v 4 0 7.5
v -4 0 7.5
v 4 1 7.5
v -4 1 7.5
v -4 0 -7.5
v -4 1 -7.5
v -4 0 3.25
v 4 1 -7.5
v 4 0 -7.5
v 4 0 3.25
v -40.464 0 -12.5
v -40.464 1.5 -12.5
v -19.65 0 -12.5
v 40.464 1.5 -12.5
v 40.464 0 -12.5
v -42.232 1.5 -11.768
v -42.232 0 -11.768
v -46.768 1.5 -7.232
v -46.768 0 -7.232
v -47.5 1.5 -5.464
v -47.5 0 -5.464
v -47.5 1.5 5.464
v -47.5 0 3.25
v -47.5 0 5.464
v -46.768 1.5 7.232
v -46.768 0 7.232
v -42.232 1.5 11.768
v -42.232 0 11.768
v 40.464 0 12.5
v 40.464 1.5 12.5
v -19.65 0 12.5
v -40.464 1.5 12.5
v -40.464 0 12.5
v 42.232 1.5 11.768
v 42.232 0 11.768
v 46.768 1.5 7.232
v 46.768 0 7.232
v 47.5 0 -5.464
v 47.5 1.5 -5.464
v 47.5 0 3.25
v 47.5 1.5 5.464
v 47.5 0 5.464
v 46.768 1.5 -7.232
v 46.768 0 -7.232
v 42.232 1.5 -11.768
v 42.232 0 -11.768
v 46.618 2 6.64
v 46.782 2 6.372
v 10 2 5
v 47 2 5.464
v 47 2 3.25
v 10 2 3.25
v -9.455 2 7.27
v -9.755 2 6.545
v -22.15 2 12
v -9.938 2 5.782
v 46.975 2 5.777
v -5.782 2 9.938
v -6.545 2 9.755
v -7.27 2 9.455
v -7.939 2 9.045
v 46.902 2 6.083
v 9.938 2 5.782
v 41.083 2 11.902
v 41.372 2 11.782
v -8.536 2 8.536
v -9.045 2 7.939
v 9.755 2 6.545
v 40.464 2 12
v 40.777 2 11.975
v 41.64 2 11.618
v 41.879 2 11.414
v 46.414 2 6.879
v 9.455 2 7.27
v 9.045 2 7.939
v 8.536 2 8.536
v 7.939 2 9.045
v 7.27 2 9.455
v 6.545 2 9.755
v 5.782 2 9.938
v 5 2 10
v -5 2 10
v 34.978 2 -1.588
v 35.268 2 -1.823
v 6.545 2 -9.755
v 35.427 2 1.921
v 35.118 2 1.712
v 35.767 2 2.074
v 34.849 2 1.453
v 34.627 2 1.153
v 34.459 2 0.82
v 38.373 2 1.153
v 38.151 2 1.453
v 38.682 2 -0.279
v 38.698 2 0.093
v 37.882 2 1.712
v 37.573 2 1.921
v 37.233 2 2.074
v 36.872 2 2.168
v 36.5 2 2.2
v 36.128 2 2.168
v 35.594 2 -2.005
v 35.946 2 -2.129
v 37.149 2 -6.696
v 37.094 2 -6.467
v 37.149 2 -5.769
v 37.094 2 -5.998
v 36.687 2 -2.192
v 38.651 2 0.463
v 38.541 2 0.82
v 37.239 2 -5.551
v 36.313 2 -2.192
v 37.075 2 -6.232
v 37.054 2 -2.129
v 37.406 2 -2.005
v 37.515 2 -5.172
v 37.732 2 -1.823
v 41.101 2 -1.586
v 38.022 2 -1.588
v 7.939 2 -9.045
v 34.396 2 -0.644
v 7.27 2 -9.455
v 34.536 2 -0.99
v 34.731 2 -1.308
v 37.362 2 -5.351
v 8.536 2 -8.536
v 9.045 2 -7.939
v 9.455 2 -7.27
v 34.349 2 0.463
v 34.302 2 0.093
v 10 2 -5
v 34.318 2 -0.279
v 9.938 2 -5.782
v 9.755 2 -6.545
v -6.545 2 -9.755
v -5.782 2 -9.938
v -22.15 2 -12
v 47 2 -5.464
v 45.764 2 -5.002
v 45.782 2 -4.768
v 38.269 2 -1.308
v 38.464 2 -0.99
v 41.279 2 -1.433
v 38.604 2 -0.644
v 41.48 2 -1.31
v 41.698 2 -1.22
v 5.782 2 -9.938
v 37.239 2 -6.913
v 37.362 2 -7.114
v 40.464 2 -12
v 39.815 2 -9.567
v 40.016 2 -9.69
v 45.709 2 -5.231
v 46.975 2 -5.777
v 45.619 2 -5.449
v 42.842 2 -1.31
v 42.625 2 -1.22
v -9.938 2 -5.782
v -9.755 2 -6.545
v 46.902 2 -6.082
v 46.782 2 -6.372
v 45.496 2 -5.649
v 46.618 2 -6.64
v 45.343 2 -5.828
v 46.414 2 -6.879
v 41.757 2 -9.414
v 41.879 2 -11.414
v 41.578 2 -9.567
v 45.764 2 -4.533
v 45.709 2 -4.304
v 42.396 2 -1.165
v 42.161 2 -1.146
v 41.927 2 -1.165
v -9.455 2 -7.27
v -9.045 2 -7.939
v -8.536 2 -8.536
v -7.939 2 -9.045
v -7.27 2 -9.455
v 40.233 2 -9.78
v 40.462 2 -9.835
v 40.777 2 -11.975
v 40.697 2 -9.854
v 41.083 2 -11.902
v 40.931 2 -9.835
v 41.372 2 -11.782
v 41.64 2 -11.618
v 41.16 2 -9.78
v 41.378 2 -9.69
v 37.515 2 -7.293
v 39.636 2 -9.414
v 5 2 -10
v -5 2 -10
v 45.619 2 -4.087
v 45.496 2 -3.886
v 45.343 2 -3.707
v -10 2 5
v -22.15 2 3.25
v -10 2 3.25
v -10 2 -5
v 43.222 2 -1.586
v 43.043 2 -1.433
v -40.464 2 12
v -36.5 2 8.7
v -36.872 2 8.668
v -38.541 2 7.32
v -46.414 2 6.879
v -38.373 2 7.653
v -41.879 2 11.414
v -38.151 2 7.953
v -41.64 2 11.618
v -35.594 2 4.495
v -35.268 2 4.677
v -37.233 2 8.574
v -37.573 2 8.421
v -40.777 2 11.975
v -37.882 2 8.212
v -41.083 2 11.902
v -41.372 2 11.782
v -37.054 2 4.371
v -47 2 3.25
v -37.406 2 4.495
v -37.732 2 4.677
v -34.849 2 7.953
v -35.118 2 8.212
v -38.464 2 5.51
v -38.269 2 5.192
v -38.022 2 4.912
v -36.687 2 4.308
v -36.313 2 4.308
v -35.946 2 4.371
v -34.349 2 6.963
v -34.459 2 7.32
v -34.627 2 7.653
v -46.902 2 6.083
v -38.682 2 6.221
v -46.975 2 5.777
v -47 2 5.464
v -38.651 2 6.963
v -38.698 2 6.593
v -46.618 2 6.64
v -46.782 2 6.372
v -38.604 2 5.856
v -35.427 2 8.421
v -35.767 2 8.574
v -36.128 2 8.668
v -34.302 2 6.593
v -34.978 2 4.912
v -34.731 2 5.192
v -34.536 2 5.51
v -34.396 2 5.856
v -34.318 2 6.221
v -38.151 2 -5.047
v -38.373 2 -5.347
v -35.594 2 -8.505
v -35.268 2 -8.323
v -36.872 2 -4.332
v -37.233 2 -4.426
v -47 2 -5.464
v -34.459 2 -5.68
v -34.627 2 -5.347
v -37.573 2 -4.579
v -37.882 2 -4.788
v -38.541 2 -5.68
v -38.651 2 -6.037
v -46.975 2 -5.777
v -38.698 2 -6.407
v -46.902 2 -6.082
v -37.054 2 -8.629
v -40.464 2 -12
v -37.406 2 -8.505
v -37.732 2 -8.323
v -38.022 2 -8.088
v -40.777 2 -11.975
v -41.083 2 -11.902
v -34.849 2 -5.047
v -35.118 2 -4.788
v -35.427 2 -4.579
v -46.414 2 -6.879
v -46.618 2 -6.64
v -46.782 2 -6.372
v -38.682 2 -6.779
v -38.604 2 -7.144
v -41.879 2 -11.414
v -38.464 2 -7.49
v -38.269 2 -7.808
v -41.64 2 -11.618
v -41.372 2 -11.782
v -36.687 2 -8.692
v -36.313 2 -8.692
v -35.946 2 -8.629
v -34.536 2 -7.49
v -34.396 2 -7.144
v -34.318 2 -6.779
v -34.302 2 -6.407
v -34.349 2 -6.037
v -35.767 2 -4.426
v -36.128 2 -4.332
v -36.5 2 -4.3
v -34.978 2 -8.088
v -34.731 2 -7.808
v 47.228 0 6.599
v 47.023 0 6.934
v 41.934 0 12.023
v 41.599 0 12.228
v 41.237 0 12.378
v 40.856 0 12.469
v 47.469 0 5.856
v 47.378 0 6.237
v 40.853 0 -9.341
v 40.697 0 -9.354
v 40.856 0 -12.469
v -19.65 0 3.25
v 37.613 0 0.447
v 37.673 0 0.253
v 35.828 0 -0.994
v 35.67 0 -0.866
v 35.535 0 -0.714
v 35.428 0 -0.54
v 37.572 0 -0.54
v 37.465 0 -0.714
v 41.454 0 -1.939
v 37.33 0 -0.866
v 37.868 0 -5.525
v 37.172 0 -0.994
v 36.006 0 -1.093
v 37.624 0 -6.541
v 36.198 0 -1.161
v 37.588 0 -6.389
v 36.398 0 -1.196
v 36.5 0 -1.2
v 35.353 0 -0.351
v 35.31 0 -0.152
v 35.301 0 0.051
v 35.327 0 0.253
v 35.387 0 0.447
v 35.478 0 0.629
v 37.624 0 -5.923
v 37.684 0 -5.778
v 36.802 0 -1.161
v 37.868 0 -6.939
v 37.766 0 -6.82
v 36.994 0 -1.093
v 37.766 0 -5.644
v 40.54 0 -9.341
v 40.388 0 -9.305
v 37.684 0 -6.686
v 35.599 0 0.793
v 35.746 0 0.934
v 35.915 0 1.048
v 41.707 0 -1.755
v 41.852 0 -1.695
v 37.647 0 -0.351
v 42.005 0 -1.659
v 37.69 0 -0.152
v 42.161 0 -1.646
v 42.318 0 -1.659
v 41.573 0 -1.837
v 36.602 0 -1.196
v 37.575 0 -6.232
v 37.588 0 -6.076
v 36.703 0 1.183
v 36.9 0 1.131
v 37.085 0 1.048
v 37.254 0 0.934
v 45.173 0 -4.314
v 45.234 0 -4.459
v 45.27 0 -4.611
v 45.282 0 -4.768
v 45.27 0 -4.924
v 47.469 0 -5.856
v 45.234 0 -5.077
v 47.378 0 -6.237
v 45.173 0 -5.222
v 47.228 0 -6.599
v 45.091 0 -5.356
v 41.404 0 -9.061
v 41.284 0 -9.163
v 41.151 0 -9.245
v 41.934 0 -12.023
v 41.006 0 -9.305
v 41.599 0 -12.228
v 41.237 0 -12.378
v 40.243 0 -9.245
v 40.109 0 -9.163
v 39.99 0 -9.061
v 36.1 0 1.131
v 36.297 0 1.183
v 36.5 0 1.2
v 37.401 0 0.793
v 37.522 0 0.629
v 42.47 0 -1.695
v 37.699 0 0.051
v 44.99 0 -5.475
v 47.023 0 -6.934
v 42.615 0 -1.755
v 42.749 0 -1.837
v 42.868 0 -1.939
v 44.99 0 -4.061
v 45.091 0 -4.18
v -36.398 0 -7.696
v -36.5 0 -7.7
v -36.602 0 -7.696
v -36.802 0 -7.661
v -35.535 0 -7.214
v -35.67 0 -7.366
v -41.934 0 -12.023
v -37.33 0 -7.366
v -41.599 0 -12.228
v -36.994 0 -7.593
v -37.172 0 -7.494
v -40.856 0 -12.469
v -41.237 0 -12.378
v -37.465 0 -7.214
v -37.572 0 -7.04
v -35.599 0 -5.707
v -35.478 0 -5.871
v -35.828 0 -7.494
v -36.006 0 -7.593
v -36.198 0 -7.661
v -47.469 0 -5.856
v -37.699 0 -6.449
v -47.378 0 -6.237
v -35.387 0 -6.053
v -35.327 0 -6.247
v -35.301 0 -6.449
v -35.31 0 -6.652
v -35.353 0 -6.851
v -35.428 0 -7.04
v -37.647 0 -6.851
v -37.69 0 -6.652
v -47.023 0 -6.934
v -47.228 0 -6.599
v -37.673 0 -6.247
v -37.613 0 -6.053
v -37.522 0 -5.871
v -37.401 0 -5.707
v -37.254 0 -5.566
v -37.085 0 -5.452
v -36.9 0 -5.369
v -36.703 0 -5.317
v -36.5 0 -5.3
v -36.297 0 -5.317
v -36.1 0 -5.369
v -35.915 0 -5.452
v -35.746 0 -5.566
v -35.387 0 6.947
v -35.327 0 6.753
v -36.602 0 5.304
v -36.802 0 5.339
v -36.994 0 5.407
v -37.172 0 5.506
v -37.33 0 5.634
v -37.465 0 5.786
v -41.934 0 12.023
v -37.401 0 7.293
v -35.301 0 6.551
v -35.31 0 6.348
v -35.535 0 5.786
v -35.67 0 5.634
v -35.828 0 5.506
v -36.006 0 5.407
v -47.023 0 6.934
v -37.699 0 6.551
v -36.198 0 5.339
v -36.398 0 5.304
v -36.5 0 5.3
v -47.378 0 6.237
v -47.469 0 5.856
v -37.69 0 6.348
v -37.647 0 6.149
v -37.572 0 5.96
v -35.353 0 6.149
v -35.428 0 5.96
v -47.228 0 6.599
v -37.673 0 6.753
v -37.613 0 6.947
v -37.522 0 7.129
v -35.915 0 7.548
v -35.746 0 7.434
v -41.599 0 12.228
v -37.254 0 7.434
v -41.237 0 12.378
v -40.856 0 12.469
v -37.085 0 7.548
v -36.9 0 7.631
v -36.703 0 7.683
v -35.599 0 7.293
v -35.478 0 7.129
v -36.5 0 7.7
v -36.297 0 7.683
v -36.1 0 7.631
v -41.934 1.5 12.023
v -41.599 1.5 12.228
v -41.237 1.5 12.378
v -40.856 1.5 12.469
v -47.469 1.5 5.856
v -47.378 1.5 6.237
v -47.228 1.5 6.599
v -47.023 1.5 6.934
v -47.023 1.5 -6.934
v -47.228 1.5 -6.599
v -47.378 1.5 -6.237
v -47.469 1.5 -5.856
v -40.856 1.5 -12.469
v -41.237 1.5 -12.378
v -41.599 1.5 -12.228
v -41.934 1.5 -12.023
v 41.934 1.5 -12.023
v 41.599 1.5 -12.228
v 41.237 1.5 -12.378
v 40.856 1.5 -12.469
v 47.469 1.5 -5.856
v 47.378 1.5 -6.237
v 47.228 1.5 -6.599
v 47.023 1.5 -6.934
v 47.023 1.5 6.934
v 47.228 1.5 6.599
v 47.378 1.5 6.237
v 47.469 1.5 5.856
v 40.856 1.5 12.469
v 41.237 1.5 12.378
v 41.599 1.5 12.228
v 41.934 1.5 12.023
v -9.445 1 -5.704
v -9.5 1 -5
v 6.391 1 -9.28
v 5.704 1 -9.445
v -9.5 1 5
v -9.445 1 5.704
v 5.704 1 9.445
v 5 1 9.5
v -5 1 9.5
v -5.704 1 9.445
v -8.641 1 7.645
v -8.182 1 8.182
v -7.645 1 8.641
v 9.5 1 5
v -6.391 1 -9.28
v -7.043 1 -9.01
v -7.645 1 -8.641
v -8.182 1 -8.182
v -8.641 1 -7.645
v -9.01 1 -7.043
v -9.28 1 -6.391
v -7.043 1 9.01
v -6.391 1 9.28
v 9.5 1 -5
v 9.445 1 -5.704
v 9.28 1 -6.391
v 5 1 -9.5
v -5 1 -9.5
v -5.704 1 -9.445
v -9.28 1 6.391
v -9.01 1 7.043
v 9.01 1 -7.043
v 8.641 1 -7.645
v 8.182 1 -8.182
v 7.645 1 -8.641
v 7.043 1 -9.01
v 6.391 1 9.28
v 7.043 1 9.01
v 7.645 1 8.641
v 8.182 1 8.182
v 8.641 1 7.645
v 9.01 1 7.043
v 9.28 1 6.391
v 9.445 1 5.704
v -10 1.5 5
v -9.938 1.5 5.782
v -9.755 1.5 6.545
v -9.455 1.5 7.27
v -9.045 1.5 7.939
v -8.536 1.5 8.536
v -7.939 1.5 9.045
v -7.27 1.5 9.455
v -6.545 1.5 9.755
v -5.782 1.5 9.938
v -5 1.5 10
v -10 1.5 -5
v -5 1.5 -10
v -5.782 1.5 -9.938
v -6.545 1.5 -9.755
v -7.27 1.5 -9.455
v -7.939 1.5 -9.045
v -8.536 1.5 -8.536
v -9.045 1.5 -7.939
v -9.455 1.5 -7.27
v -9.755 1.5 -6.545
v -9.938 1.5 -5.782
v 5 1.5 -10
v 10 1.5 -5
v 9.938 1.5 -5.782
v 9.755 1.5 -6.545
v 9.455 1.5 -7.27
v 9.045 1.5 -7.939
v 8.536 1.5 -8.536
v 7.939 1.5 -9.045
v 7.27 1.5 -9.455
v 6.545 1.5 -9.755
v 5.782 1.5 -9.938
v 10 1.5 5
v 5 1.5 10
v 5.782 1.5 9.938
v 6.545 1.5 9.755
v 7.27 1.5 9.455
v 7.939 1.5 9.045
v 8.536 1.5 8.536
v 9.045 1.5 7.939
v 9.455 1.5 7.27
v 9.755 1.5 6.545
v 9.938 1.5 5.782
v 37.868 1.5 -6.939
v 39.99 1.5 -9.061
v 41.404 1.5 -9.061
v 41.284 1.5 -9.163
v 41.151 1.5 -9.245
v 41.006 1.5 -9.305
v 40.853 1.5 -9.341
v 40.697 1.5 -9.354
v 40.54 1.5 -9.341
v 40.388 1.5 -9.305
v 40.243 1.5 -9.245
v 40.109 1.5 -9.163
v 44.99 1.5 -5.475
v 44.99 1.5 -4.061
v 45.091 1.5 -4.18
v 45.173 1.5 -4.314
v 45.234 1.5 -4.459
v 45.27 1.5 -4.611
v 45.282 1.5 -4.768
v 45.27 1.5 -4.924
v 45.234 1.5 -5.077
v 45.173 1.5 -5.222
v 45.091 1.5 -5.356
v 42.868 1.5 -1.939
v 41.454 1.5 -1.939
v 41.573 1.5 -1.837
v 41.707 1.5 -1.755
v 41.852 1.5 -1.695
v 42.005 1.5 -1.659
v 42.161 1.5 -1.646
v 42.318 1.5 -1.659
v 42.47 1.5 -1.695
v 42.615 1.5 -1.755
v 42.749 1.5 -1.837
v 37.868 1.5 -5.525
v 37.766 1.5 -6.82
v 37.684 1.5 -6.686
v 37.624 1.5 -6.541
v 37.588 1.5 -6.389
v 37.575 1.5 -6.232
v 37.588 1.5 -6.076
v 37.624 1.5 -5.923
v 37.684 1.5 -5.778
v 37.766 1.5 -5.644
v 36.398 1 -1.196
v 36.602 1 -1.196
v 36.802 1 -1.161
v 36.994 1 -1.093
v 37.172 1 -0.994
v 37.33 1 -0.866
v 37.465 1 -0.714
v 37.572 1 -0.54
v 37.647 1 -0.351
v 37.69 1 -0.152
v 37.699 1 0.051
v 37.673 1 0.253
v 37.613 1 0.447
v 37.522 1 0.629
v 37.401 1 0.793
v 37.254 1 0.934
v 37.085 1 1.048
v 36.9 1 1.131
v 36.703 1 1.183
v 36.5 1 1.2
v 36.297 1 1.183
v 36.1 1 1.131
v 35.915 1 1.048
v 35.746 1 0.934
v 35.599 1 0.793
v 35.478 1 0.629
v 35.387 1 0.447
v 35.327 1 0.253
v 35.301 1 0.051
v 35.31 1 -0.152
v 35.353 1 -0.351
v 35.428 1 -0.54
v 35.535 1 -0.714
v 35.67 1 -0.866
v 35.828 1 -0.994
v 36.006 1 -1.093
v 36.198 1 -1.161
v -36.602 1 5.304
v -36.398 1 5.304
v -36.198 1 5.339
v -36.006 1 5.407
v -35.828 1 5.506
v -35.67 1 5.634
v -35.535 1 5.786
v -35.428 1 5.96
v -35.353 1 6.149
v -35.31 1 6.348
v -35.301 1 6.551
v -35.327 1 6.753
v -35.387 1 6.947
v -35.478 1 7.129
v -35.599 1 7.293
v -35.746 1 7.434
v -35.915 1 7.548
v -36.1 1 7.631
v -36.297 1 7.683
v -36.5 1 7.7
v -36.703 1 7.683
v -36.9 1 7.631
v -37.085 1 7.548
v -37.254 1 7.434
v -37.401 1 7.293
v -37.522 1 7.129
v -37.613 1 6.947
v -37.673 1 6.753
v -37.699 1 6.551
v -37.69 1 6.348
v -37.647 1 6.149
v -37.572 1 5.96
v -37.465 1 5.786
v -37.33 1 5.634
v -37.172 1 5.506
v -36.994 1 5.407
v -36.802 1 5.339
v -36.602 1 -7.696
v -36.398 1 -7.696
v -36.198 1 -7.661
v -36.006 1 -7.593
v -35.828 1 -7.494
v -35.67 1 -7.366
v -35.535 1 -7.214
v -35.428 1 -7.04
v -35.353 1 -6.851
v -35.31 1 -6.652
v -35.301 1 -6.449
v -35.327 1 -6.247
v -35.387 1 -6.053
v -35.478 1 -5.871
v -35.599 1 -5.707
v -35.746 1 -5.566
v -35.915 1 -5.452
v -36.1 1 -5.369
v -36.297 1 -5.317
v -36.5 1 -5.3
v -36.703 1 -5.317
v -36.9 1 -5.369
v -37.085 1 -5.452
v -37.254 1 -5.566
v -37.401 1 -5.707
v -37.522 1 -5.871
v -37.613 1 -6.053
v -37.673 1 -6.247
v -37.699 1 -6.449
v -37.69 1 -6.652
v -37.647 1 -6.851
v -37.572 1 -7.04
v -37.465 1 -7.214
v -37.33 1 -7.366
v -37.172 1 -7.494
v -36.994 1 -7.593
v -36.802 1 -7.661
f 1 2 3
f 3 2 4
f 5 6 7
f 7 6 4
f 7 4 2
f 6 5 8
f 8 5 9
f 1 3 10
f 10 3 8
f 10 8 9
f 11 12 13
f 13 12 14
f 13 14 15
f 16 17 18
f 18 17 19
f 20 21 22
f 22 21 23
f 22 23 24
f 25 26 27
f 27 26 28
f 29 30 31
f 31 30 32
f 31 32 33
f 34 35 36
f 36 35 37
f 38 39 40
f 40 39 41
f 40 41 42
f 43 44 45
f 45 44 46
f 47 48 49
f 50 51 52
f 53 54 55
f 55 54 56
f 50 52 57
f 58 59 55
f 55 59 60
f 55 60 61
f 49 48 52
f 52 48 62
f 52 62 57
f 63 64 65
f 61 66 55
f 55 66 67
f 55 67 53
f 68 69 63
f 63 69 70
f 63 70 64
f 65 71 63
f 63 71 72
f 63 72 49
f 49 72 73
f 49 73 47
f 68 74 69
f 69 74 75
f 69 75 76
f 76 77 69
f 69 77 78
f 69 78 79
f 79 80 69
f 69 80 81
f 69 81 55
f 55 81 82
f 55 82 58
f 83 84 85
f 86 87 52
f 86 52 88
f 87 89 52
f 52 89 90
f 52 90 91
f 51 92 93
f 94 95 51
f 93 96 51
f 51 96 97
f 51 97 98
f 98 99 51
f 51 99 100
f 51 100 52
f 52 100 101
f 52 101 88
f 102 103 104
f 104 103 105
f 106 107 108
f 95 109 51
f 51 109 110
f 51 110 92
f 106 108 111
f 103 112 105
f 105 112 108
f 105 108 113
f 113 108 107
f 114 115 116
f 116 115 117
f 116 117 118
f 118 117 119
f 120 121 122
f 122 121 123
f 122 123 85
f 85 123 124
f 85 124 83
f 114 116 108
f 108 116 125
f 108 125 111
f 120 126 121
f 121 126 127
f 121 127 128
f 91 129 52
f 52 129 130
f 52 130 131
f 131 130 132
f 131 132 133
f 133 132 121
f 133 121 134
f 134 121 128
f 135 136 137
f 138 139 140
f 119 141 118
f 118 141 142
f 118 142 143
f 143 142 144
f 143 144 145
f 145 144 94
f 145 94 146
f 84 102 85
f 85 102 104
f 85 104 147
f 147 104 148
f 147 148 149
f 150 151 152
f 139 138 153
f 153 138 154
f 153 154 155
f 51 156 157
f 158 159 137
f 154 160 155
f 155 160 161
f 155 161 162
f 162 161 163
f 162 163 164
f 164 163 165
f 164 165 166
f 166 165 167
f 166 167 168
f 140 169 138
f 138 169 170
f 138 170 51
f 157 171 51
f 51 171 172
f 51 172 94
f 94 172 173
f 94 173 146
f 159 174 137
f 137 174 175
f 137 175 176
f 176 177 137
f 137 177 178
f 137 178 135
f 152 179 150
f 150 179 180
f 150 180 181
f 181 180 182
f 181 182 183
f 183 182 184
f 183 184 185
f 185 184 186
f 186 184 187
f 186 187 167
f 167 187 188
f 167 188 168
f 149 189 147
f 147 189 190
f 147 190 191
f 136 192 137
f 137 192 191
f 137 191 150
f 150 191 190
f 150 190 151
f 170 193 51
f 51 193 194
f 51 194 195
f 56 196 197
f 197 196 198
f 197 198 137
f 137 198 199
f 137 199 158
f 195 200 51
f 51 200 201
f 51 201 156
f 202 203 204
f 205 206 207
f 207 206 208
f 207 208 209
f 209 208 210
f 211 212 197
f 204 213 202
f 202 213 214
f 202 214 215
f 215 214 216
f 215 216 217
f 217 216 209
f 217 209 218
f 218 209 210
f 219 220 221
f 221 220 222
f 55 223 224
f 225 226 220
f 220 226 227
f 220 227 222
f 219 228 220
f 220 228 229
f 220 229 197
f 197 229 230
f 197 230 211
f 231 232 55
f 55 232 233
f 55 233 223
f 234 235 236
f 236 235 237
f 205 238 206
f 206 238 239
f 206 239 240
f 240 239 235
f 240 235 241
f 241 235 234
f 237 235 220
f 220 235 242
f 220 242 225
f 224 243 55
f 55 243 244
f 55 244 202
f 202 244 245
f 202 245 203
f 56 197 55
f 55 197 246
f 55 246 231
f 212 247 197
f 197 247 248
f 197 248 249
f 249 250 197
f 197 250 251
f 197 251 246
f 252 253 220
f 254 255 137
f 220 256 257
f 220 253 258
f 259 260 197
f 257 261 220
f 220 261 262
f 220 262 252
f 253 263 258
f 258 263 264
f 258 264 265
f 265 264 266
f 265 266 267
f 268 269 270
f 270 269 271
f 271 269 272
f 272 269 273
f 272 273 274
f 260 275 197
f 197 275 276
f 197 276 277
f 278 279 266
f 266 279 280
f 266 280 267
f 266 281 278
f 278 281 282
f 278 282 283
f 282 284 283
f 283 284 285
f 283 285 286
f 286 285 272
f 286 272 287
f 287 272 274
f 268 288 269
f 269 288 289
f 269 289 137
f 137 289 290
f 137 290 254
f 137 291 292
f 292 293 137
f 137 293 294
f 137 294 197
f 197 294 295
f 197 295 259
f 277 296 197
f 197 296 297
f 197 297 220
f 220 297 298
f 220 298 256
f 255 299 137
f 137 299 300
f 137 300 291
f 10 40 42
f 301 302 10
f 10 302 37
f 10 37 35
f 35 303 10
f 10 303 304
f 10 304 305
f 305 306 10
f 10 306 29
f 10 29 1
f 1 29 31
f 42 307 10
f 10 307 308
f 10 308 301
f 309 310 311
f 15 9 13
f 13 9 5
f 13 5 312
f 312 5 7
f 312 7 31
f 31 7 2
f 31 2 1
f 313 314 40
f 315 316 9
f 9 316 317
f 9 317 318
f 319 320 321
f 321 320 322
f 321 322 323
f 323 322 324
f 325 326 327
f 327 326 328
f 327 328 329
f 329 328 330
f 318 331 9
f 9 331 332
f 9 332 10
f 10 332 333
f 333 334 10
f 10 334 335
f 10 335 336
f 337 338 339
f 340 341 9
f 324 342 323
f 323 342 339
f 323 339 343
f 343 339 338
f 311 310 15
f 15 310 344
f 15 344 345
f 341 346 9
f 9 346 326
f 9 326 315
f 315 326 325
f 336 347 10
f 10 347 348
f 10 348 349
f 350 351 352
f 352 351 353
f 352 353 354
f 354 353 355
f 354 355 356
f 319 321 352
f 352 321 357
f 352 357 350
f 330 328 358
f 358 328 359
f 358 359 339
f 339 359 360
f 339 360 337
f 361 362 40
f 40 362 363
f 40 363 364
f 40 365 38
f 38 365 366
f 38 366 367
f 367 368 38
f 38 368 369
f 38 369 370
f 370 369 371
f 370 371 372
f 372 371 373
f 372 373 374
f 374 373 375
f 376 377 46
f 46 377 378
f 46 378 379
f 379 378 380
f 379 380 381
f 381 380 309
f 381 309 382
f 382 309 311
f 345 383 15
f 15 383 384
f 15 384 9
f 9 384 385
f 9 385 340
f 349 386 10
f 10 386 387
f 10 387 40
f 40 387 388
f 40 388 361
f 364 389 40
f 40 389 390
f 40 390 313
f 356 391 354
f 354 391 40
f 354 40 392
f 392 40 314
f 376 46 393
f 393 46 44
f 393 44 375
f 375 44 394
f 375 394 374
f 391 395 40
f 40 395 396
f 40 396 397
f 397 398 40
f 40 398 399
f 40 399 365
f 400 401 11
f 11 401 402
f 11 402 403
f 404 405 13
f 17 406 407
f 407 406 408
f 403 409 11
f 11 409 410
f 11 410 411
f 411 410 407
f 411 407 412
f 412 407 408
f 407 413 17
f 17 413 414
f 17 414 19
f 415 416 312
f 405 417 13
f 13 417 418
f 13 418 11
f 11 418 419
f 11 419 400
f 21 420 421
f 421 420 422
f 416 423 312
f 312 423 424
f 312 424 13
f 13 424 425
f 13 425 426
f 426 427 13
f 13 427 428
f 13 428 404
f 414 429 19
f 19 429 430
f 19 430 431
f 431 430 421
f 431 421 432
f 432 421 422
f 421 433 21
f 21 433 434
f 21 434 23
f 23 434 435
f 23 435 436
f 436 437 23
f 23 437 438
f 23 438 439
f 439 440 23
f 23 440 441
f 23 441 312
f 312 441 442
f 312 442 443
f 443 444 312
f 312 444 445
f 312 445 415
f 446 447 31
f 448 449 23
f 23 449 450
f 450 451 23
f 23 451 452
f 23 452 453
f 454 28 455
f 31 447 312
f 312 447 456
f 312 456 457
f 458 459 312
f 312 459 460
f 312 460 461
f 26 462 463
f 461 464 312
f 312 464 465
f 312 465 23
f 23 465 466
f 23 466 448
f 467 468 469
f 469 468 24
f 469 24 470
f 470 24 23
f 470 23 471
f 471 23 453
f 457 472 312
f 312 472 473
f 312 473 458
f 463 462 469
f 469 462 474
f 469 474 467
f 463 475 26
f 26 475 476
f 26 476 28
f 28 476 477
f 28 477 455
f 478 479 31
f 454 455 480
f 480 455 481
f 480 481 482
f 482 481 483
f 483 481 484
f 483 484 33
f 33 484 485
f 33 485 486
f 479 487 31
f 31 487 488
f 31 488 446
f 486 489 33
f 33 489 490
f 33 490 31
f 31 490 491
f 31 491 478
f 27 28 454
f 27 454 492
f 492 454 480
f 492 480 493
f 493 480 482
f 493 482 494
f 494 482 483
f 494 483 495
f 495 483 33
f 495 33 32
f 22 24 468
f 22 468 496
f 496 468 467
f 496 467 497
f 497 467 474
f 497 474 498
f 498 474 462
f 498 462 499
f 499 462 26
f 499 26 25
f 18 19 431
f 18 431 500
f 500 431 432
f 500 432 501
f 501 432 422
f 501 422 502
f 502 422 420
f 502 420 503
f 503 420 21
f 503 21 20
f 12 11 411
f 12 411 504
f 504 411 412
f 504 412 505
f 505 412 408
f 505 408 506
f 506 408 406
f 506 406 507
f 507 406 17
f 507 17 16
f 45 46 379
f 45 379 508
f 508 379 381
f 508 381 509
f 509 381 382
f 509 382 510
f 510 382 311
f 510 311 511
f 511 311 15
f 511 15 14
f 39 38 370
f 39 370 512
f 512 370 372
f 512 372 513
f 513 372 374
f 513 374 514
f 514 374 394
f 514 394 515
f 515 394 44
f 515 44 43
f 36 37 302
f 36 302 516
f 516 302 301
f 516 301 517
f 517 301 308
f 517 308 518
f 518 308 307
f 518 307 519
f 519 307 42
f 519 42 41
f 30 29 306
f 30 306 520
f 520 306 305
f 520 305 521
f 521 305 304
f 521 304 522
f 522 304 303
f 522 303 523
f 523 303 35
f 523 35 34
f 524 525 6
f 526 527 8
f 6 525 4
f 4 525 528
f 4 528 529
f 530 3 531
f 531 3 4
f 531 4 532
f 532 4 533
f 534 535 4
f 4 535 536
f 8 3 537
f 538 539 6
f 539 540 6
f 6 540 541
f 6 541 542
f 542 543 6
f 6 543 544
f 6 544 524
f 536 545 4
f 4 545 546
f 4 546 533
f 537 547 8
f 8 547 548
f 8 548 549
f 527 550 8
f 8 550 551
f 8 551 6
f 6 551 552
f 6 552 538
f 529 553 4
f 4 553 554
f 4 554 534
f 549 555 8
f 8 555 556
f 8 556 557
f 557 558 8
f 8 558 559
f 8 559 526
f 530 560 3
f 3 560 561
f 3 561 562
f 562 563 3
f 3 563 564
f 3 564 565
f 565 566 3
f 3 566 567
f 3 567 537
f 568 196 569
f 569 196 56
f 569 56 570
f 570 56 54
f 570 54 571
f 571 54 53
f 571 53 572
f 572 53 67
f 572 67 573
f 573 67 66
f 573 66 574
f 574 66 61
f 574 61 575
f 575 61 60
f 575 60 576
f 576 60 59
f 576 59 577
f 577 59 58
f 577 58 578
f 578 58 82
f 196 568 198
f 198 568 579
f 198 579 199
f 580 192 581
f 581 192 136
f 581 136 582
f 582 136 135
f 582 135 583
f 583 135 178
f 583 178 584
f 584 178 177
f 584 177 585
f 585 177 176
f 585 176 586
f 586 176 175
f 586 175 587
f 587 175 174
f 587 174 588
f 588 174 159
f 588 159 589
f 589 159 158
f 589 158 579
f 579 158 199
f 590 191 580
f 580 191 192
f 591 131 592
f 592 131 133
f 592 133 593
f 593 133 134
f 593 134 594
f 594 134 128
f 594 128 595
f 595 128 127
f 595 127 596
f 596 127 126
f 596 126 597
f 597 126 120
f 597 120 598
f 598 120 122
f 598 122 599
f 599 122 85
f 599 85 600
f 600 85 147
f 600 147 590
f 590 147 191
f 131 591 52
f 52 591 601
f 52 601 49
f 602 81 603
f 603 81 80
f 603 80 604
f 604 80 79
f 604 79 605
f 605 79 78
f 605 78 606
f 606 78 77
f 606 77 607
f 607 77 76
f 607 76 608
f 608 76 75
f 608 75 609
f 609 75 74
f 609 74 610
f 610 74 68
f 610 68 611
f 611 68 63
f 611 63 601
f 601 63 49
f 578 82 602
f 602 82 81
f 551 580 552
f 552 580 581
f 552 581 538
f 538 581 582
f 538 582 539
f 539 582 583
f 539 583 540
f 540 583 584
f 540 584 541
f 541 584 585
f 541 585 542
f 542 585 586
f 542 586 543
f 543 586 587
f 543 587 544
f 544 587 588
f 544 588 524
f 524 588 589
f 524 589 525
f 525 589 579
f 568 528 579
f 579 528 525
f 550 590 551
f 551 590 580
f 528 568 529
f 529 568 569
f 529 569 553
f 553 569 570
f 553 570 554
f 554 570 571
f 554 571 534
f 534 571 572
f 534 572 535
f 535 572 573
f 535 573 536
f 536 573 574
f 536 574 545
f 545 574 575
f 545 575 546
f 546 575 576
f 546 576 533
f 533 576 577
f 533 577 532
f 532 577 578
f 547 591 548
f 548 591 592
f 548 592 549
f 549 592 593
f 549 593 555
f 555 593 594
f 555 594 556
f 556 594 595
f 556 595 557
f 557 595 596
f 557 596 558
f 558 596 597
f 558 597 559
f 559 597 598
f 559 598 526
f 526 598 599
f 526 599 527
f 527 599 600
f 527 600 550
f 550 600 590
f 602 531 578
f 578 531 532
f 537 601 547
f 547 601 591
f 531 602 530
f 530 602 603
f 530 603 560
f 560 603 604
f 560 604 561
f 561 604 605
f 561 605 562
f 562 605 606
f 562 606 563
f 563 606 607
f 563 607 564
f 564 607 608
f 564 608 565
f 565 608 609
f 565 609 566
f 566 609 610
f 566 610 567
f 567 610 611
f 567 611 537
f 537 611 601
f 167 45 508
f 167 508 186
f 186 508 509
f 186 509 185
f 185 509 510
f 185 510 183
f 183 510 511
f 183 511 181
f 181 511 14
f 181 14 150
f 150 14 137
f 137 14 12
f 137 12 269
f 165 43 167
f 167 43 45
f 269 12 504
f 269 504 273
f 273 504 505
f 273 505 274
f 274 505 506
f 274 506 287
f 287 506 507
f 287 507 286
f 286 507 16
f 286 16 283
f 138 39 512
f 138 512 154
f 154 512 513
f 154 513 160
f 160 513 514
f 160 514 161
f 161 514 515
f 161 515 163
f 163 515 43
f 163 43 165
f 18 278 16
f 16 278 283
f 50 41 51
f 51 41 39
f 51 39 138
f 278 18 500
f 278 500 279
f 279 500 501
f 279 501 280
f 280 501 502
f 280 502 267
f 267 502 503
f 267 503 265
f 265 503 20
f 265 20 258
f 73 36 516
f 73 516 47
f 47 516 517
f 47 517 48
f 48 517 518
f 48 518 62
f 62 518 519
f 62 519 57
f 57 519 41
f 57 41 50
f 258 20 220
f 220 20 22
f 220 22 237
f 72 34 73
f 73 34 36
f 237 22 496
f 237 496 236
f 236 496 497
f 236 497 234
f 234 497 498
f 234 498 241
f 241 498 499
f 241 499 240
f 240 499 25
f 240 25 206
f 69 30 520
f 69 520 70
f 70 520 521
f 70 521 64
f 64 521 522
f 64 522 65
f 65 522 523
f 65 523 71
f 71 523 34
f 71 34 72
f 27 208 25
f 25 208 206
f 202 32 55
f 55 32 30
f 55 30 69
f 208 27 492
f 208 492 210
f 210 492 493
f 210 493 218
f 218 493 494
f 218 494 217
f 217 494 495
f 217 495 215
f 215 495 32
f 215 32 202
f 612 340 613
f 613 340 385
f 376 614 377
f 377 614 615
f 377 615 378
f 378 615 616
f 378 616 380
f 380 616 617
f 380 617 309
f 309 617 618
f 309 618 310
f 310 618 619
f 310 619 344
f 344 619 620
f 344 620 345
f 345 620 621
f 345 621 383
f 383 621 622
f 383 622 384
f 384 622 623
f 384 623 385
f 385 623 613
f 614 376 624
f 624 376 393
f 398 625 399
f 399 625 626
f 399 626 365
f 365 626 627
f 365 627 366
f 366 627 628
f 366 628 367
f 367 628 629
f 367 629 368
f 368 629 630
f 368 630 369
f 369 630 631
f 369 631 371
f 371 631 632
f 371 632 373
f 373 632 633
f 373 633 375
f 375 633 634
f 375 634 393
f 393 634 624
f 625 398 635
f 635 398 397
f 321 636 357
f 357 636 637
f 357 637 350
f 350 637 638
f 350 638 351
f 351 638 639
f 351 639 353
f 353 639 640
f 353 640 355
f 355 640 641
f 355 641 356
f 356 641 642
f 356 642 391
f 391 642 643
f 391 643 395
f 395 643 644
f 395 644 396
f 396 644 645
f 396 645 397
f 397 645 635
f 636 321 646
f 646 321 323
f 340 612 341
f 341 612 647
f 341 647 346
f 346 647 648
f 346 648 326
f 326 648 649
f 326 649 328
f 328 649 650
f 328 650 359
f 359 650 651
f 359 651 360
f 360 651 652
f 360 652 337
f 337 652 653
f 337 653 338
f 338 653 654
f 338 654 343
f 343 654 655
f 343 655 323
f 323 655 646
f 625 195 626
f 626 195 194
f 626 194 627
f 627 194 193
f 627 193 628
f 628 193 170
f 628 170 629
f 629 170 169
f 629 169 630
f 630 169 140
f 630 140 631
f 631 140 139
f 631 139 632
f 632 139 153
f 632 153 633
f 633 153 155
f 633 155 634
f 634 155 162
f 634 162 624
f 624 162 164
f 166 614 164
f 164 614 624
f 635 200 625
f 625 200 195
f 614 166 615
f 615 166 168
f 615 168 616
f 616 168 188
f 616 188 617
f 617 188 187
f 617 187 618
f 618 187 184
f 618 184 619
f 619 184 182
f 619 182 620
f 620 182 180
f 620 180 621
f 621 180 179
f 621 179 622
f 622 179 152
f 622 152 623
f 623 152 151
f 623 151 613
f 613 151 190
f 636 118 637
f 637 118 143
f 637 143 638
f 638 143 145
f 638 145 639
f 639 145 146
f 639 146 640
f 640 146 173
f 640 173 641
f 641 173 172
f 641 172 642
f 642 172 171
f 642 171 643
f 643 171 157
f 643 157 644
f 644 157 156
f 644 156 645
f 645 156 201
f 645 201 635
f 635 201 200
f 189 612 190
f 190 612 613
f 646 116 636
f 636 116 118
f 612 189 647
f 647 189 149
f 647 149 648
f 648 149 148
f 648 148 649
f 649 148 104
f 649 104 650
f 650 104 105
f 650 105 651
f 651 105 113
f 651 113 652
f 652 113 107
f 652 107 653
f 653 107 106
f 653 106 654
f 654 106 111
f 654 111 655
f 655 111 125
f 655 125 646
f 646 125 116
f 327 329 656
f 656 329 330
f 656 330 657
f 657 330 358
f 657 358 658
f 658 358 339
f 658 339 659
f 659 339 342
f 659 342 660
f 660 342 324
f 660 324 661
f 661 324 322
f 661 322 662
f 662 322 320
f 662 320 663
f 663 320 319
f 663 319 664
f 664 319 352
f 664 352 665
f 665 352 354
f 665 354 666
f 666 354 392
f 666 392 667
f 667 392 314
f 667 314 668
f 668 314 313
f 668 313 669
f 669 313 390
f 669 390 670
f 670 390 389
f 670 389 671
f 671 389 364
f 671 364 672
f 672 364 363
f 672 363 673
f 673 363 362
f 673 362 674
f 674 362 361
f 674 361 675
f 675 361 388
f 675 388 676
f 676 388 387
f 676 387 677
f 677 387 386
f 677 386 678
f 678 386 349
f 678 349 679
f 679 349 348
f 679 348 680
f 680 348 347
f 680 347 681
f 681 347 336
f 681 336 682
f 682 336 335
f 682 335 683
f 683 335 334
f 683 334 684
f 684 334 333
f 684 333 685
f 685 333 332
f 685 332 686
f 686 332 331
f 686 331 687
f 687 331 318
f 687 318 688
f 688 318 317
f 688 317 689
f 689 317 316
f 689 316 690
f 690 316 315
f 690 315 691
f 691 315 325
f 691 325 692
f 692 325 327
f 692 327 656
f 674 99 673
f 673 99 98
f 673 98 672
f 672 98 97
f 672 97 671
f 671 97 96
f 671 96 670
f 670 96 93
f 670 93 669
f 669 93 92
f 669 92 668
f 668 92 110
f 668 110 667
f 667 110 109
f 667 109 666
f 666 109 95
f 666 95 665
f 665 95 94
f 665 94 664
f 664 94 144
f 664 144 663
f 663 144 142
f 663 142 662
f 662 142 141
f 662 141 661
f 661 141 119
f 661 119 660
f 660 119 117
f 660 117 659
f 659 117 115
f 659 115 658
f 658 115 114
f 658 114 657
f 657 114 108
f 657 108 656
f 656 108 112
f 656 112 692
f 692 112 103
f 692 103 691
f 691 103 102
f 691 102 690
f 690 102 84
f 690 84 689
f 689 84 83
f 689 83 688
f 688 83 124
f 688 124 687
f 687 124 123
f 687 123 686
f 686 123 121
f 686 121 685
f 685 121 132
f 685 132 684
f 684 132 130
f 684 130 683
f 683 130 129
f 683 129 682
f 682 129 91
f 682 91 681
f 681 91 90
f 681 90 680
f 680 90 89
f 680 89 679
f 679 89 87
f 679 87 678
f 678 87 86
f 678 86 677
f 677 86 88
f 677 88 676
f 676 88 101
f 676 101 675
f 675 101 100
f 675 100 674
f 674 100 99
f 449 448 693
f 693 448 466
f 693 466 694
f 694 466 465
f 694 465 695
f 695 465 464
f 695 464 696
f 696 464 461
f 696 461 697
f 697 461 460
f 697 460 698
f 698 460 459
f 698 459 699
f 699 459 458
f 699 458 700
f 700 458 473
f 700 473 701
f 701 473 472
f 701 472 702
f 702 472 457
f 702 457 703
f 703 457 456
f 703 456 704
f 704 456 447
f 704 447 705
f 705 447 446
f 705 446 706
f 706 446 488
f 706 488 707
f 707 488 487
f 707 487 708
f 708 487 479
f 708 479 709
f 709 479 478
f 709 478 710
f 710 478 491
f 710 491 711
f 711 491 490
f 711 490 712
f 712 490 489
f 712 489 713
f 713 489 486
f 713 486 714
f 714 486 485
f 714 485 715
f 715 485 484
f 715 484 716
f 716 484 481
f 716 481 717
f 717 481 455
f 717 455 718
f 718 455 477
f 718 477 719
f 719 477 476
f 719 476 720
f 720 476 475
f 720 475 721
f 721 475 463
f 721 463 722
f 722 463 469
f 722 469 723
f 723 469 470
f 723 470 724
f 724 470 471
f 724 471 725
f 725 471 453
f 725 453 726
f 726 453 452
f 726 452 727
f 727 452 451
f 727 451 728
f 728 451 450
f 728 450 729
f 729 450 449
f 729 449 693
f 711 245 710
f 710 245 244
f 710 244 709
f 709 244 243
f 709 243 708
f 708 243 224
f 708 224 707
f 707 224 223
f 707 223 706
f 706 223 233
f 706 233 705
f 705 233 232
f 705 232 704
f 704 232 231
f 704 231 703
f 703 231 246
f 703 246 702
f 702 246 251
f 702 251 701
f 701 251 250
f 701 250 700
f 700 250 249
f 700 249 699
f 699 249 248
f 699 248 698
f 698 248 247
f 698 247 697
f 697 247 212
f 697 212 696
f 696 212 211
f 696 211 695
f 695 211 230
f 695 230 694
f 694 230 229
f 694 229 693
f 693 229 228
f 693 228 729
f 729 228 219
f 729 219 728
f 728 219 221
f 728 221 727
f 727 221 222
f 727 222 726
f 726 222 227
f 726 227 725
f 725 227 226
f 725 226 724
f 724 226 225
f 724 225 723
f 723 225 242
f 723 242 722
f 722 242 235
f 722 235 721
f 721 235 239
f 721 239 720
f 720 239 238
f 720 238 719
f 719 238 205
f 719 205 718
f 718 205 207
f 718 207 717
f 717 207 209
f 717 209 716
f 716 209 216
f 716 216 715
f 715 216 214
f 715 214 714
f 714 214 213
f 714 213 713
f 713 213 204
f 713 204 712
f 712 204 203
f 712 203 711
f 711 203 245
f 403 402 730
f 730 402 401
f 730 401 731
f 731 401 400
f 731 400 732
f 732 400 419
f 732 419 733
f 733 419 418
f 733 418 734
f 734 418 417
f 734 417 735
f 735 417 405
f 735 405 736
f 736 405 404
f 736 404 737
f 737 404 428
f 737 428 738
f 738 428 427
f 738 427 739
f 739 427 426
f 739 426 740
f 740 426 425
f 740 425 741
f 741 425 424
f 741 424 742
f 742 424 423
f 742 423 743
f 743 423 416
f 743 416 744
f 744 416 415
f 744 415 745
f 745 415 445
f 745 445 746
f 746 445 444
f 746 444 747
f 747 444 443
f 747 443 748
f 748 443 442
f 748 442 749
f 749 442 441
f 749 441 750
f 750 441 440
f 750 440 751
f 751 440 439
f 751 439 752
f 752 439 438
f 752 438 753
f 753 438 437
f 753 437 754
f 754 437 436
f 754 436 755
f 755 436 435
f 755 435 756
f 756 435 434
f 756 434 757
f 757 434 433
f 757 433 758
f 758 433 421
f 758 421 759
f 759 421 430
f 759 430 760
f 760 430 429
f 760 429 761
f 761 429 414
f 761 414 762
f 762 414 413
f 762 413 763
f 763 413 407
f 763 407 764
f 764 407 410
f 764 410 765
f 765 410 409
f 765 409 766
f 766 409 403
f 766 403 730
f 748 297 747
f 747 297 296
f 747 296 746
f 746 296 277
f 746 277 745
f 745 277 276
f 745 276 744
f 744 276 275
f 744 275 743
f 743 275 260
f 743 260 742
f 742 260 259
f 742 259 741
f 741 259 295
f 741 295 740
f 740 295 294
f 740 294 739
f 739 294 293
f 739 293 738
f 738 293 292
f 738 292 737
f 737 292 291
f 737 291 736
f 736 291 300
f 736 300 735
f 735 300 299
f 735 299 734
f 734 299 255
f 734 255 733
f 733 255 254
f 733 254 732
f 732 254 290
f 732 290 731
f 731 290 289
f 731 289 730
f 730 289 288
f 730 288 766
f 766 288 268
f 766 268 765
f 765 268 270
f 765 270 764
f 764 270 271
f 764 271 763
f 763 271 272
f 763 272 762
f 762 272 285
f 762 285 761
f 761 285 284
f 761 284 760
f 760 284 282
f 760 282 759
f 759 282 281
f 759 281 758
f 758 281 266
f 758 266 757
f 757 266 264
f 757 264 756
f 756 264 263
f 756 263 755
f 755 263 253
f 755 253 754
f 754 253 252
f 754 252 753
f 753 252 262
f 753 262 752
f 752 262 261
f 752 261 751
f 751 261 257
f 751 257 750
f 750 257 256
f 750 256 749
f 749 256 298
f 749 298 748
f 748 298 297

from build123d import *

# Parameters (mm, degrees)
BOSS_EXTRUDE1_DEPTH                                 = 2
FILLET1_R                                           = 2.5
SKETCH2_W                                           = 8
SKETCH2_H                                           = 15
CUT_EXTRUDE1_DEPTH                                  = 2
CUT_EXTRUDE2_DEPTH                                  = 1
FILLET3_SIZE                                        = 0.5
FILLET4_SIZE                                        = 0.5
CUT_EXTRUDE3_DEPTH                                  = 50.157908825
FILLET5_SIZE                                        = 0.5
CSK_FOR_M2_COUNTERSUNK_FLAT_HEAD_SCREW1_D           = 2.4
CSK_FOR_M2_COUNTERSUNK_FLAT_HEAD_SCREW1_DEPTH       = 4.278967257
CSK_FOR_M2_COUNTERSUNK_FLAT_HEAD_SCREW1_CSINK_D     = 4.4
CSK_FOR_M2_COUNTERSUNK_FLAT_HEAD_SCREW1_CSINK_ANGLE = 90
CSK_FOR_M2_COUNTERSUNK_FLAT_HEAD_SCREW1_TIP         = 0.721032743
CSK_FOR_M2_COUNTERSUNK_FLAT_HEAD_SCREW2_D           = 2.4
CSK_FOR_M2_COUNTERSUNK_FLAT_HEAD_SCREW2_DEPTH       = 4.278967257
CSK_FOR_M2_COUNTERSUNK_FLAT_HEAD_SCREW2_CSINK_D     = 4.4
CSK_FOR_M2_COUNTERSUNK_FLAT_HEAD_SCREW2_CSINK_ANGLE = 90
CSK_FOR_M2_COUNTERSUNK_FLAT_HEAD_SCREW2_TIP         = 0.721032743


with BuildPart() as part:
    # Sketch1 → Boss-Extrude1 (new body)
    with BuildSketch(Plane(origin=(0, 0, 0), x_dir=(1, 0, 0), z_dir=(0, 1, 0))):
        Polygon((-47.5, 6.5), (-41.5, 12.5), (41.5, 12.5), (47.5, 6.5), (47.5, -6.5), (41.5, -12.5), (-41.5, -12.5), (-47.5, -6.5), align=None)
    extrude(amount=BOSS_EXTRUDE1_DEPTH)

    # Fillet1
    fillet1_edges = [part.edges().sort_by_distance(p)[0] for p in [
        (41.5, 1, -12.5),
        (47.5, 1, -6.5),
        (47.5, 1, 6.5),
        (41.5, 1, 12.5),
        (-41.5, 1, 12.5),
        (-47.5, 1, 6.5),
        (-47.5, 1, -6.5),
        (-41.5, 1, -12.5),
    ]]
    fillet(fillet1_edges, radius=FILLET1_R)

    # Sketch2 → Cut-Extrude1 (cut)
    with BuildSketch(Plane(origin=(0, 2, 0), x_dir=(1, 0, 0), z_dir=(0, 1, 0))):
        Rectangle(SKETCH2_W, SKETCH2_H)
    extrude(amount=-CUT_EXTRUDE1_DEPTH, mode=Mode.SUBTRACT)

    # Sketch3 → Cut-Extrude2 (cut)
    with BuildSketch(Plane(origin=(0, 2, 0), x_dir=(1, 0, 0), z_dir=(0, 1, 0))):
        with BuildLine():
            Line((-5, -10), (5, -10))
            ThreePointArc((5, -10), (8.535533906, -8.535533906), (10, -5))
            Line((10, -5), (10, 5))
            ThreePointArc((10, 5), (8.535533906, 8.535533906), (5, 10))
            Line((5, 10), (-5, 10))
            ThreePointArc((-5, 10), (-8.535533906, 8.535533906), (-10, 5))
            Line((-10, 5), (-10, -5))
            ThreePointArc((-10, -5), (-8.535533906, -8.535533906), (-5, -10))
        make_face()
    extrude(amount=-CUT_EXTRUDE2_DEPTH, mode=Mode.SUBTRACT)

    # Fillet3
    fillet3_edges = [part.edges().sort_by_distance(p)[0] for p in [
        (-8.535533906, 1, 8.535533906),
        (-10, 1, 0),
        (-8.535533906, 1, -8.535533906),
        (0, 1, -10),
        (8.535533906, 1, -8.535533906),
        (10, 1, 0),
        (8.535533906, 1, 8.535533906),
        (0, 1, 10),
    ]]
    chamfer(fillet3_edges, length=FILLET3_SIZE)

    # Fillet4
    fillet4_edges = [part.edges().sort_by_distance(p)[0] for p in [
        (0, 2, 12.5),
        (-44.5, 2, 9.5),
        (0, 2, -12.5),
        (-44.5, 2, -9.5),
        (-47.5, 2, 0),
        (44.5, 2, 9.5),
        (47.5, 2, 0),
        (44.5, 2, -9.5),
        (41.421174675, 2, 12.309698831),
        (47.309698831, 2, 6.421174675),
        (47.309698831, 2, -6.421174675),
        (41.421174675, 2, -12.309698831),
        (-41.421174675, 2, -12.309698831),
        (-47.309698831, 2, -6.421174675),
        (-47.309698831, 2, 6.421174675),
        (-41.421174675, 2, 12.309698831),
    ]]
    chamfer(fillet4_edges, length=FILLET4_SIZE)

    # Sketch5 → Cut-Extrude3 (cut, through all)
    with BuildSketch(Plane(origin=(0, 2, 0), x_dir=(1, 0, 0), z_dir=(0, 1, 0))):
        with BuildLine():
            Line((39.98959236, 9.060660172), (37.868272016, 6.939339828))
            ThreePointArc((37.868272016, 6.939339828), (37.575378798, 6.232233047), (37.868272016, 5.525126266))
            Line((37.868272016, 5.525126266), (41.454058454, 1.939339828))
            ThreePointArc((41.454058454, 1.939339828), (42.161165235, 1.646446609), (42.868272016, 1.939339828))
            Line((42.868272016, 1.939339828), (44.98959236, 4.060660172))
            ThreePointArc((44.98959236, 4.060660172), (45.282485579, 4.767766953), (44.98959236, 5.474873734))
            Line((44.98959236, 5.474873734), (41.403805922, 9.060660172))
            ThreePointArc((41.403805922, 9.060660172), (40.696699141, 9.353553391), (39.98959236, 9.060660172))
        make_face()
    extrude(amount=-CUT_EXTRUDE3_DEPTH, mode=Mode.SUBTRACT)

    # Fillet5
    fillet5_edges = [part.edges().sort_by_distance(p)[0] for p in [
        (40.696699141, 2, -9.353553391),
        (43.196699141, 2, -7.267766953),
        (45.282485579, 2, -4.767766953),
        (43.928932188, 2, -3),
        (42.161165235, 2, -1.646446609),
        (38.928932188, 2, -8),
        (37.575378798, 2, -6.232233047),
        (39.661165235, 2, -3.732233047),
    ]]
    chamfer(fillet5_edges, length=FILLET5_SIZE)

    # CSK for M2 Countersunk Flat Head Screw1
    with Locations(Plane(origin=(36.5, 2, 0), x_dir=(0, 0, 1), z_dir=(0, 1, 0))):
        with Locations((0, 0)):
            CounterSinkHole(CSK_FOR_M2_COUNTERSUNK_FLAT_HEAD_SCREW1_D / 2, CSK_FOR_M2_COUNTERSUNK_FLAT_HEAD_SCREW1_CSINK_D / 2, depth=CSK_FOR_M2_COUNTERSUNK_FLAT_HEAD_SCREW1_DEPTH, counter_sink_angle=CSK_FOR_M2_COUNTERSUNK_FLAT_HEAD_SCREW1_CSINK_ANGLE)
            with Locations((0, 0, -(CSK_FOR_M2_COUNTERSUNK_FLAT_HEAD_SCREW1_DEPTH + CSK_FOR_M2_COUNTERSUNK_FLAT_HEAD_SCREW1_TIP / 2))):  # 118° drill point
                Cone(0, CSK_FOR_M2_COUNTERSUNK_FLAT_HEAD_SCREW1_D / 2, CSK_FOR_M2_COUNTERSUNK_FLAT_HEAD_SCREW1_TIP, mode=Mode.SUBTRACT)

    # CSK for M2 Countersunk Flat Head Screw2
    with Locations(Plane(origin=(-36.5, 2, -6.5), x_dir=(0, 0, 1), z_dir=(0, 1, 0))):
        with Locations((0, 0), (13, 0)):
            CounterSinkHole(CSK_FOR_M2_COUNTERSUNK_FLAT_HEAD_SCREW2_D / 2, CSK_FOR_M2_COUNTERSUNK_FLAT_HEAD_SCREW2_CSINK_D / 2, depth=CSK_FOR_M2_COUNTERSUNK_FLAT_HEAD_SCREW2_DEPTH, counter_sink_angle=CSK_FOR_M2_COUNTERSUNK_FLAT_HEAD_SCREW2_CSINK_ANGLE)
            with Locations((0, 0, -(CSK_FOR_M2_COUNTERSUNK_FLAT_HEAD_SCREW2_DEPTH + CSK_FOR_M2_COUNTERSUNK_FLAT_HEAD_SCREW2_TIP / 2))):  # 118° drill point
                Cone(0, CSK_FOR_M2_COUNTERSUNK_FLAT_HEAD_SCREW2_D / 2, CSK_FOR_M2_COUNTERSUNK_FLAT_HEAD_SCREW2_TIP, mode=Mode.SUBTRACT)


solid = part.part
